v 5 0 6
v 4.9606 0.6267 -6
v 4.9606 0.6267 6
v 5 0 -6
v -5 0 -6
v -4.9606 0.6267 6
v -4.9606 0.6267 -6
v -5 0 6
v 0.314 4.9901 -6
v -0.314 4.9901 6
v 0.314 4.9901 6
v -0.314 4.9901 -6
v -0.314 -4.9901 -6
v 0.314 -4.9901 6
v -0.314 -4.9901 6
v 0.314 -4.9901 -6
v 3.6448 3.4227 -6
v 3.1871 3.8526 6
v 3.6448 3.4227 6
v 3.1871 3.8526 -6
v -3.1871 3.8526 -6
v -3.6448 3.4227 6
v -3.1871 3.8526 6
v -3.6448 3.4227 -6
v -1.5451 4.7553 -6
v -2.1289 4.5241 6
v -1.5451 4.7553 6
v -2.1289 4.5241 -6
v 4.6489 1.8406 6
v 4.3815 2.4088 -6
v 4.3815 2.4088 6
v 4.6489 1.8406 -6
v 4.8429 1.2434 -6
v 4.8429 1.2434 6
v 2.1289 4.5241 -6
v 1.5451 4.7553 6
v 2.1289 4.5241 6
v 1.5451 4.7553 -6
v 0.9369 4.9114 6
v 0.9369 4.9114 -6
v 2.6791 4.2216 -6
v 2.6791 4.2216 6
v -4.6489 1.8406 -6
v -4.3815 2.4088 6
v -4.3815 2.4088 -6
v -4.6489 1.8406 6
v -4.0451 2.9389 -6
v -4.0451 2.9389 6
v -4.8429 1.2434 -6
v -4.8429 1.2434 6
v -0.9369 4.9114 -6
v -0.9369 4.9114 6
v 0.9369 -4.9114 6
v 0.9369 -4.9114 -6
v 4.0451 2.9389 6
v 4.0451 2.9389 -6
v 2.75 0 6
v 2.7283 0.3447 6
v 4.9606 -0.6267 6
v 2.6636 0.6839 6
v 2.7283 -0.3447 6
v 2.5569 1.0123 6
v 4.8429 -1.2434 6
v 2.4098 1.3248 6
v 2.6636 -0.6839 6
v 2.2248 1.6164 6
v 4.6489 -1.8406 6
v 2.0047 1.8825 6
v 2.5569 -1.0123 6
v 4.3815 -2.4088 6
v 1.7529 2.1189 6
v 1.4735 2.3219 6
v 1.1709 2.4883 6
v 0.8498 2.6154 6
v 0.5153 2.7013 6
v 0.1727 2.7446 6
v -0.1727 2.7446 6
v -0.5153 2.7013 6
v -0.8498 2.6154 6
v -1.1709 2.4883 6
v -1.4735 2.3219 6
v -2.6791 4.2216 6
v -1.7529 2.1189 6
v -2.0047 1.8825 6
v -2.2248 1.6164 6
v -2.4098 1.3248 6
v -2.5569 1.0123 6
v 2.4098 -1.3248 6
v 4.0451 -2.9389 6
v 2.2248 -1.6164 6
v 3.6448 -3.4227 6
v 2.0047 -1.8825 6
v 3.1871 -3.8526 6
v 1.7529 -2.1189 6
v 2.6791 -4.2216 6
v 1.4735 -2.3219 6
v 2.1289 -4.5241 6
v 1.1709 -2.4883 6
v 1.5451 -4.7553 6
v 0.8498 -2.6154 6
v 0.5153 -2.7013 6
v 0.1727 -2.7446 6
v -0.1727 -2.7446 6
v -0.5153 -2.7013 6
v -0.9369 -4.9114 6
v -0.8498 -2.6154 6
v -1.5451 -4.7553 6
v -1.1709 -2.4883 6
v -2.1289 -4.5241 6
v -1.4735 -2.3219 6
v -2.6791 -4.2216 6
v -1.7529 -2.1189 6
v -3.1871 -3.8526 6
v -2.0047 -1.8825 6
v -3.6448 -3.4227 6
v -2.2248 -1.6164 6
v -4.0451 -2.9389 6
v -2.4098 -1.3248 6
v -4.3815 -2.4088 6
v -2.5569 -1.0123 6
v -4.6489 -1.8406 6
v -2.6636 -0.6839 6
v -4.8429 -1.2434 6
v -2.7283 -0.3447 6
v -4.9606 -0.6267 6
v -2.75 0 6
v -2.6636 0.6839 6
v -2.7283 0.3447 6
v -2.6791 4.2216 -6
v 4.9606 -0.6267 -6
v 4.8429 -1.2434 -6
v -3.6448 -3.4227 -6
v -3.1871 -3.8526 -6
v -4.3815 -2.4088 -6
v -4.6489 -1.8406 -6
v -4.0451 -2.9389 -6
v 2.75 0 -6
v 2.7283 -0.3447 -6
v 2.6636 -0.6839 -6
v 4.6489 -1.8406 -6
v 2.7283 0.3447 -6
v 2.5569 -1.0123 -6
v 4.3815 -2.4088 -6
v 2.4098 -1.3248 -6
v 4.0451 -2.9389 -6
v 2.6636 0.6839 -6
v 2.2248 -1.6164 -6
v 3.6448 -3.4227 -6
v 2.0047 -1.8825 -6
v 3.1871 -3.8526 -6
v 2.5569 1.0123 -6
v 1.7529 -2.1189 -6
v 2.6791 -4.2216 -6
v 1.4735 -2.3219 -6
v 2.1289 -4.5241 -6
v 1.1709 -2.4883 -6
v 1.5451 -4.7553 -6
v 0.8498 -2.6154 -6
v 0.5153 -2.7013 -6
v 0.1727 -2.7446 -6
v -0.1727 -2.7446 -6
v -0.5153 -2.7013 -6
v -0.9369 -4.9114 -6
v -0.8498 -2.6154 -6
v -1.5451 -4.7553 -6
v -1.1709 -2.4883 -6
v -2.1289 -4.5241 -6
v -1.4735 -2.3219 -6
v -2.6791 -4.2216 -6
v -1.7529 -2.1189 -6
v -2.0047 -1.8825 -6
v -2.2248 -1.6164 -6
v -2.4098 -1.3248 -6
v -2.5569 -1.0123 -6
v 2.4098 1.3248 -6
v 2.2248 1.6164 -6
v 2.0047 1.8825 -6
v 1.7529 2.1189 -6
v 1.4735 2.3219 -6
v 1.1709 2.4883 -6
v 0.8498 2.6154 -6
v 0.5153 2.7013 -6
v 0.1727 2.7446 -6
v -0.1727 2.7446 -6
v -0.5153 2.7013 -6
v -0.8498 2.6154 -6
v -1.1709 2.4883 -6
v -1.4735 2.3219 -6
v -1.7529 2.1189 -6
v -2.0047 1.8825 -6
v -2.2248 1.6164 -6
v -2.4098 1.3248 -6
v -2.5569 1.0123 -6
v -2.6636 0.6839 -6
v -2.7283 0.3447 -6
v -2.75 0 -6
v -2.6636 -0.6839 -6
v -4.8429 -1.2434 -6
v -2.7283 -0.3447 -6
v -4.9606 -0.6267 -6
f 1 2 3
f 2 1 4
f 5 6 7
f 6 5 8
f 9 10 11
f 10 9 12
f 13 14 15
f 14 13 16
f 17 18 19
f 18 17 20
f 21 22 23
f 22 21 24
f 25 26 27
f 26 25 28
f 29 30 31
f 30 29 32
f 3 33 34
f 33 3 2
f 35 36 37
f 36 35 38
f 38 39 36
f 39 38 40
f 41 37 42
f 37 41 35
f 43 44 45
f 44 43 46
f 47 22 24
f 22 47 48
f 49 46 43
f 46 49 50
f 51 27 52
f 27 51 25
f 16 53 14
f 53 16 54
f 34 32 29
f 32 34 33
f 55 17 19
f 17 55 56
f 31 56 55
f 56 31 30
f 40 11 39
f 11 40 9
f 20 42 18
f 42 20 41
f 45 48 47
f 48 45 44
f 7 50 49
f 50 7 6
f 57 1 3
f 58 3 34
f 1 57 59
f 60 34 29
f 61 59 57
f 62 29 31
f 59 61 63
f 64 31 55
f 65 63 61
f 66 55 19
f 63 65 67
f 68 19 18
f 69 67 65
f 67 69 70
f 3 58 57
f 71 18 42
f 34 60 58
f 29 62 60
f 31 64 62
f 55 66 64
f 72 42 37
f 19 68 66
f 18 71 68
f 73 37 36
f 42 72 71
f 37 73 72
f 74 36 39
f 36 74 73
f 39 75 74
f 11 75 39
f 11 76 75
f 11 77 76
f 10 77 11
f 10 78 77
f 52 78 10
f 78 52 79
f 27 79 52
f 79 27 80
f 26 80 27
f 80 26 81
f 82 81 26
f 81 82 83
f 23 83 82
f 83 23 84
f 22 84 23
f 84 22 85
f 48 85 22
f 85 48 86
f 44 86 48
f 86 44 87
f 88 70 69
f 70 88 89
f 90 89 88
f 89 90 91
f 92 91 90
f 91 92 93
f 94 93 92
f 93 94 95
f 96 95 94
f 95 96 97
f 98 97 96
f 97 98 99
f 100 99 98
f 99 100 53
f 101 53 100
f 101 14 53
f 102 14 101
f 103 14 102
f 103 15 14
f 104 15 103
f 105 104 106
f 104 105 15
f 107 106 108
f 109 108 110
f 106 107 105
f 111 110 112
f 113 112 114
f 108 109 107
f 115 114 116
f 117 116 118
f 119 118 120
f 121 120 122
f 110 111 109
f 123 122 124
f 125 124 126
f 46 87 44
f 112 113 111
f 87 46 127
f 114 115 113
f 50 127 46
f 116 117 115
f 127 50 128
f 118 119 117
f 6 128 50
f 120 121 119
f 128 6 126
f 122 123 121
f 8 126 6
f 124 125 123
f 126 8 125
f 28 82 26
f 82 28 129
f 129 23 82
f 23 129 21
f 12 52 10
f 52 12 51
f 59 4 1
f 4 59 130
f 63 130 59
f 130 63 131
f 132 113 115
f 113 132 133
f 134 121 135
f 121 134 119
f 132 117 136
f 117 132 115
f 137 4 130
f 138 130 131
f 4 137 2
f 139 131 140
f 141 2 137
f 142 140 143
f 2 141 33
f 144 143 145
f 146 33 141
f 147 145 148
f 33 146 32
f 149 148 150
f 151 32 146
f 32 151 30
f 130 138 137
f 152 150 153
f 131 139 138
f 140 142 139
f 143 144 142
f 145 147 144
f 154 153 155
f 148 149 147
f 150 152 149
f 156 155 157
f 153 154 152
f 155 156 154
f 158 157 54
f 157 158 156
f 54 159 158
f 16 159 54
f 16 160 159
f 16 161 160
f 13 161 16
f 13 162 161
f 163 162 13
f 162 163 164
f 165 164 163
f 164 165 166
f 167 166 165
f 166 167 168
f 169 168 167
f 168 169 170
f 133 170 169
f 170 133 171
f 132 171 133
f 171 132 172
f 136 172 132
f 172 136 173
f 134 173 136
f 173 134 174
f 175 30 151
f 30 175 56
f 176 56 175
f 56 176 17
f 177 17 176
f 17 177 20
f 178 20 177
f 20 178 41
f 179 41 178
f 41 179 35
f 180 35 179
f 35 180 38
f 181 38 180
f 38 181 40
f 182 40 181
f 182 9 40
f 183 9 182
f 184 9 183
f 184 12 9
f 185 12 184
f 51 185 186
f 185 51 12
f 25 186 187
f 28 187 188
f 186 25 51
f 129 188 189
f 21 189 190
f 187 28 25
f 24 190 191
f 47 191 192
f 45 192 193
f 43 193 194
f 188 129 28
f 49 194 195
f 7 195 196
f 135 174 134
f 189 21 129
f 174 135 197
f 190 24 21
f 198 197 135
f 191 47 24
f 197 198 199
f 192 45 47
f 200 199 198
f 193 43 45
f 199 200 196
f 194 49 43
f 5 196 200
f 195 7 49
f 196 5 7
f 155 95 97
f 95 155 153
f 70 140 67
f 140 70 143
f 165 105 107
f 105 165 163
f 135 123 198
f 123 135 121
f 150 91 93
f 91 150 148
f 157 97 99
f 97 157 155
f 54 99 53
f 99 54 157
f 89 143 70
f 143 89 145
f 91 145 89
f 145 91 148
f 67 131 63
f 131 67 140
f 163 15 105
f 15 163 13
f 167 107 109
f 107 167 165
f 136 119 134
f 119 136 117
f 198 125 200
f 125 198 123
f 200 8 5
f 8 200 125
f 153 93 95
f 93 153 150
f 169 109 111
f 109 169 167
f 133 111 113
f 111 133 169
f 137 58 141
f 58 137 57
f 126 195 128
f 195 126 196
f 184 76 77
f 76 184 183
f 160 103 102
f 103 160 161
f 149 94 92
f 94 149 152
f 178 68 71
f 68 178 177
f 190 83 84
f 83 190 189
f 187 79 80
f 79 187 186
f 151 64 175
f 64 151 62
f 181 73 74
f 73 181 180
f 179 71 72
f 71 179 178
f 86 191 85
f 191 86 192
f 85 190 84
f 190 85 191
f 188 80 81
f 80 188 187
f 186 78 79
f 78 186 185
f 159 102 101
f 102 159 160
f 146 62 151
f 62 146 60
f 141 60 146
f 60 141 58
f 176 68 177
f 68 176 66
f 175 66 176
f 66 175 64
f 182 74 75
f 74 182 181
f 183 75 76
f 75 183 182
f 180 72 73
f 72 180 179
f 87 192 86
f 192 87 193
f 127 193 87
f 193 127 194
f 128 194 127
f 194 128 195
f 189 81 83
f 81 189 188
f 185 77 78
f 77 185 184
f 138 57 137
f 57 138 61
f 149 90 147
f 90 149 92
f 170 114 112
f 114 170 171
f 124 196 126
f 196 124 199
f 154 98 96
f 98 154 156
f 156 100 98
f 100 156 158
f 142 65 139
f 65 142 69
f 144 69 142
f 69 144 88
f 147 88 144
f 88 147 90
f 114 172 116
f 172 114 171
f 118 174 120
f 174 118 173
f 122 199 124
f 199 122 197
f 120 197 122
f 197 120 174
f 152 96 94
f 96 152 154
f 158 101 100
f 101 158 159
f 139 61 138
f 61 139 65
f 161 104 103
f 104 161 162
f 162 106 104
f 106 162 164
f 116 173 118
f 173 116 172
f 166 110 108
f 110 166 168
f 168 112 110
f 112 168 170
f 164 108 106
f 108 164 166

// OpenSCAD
$fn = 50;


difference() {
	union() {
		translate(v = [0, 0, -6.0000000000]) {
			cylinder(h = 12, r = 5.0000000000);
		}
	}
	union() {
		translate(v = [0, 0, -100.0000000000]) {
			cylinder(h = 200, r = 2.7500000000);
		}
	}
}
